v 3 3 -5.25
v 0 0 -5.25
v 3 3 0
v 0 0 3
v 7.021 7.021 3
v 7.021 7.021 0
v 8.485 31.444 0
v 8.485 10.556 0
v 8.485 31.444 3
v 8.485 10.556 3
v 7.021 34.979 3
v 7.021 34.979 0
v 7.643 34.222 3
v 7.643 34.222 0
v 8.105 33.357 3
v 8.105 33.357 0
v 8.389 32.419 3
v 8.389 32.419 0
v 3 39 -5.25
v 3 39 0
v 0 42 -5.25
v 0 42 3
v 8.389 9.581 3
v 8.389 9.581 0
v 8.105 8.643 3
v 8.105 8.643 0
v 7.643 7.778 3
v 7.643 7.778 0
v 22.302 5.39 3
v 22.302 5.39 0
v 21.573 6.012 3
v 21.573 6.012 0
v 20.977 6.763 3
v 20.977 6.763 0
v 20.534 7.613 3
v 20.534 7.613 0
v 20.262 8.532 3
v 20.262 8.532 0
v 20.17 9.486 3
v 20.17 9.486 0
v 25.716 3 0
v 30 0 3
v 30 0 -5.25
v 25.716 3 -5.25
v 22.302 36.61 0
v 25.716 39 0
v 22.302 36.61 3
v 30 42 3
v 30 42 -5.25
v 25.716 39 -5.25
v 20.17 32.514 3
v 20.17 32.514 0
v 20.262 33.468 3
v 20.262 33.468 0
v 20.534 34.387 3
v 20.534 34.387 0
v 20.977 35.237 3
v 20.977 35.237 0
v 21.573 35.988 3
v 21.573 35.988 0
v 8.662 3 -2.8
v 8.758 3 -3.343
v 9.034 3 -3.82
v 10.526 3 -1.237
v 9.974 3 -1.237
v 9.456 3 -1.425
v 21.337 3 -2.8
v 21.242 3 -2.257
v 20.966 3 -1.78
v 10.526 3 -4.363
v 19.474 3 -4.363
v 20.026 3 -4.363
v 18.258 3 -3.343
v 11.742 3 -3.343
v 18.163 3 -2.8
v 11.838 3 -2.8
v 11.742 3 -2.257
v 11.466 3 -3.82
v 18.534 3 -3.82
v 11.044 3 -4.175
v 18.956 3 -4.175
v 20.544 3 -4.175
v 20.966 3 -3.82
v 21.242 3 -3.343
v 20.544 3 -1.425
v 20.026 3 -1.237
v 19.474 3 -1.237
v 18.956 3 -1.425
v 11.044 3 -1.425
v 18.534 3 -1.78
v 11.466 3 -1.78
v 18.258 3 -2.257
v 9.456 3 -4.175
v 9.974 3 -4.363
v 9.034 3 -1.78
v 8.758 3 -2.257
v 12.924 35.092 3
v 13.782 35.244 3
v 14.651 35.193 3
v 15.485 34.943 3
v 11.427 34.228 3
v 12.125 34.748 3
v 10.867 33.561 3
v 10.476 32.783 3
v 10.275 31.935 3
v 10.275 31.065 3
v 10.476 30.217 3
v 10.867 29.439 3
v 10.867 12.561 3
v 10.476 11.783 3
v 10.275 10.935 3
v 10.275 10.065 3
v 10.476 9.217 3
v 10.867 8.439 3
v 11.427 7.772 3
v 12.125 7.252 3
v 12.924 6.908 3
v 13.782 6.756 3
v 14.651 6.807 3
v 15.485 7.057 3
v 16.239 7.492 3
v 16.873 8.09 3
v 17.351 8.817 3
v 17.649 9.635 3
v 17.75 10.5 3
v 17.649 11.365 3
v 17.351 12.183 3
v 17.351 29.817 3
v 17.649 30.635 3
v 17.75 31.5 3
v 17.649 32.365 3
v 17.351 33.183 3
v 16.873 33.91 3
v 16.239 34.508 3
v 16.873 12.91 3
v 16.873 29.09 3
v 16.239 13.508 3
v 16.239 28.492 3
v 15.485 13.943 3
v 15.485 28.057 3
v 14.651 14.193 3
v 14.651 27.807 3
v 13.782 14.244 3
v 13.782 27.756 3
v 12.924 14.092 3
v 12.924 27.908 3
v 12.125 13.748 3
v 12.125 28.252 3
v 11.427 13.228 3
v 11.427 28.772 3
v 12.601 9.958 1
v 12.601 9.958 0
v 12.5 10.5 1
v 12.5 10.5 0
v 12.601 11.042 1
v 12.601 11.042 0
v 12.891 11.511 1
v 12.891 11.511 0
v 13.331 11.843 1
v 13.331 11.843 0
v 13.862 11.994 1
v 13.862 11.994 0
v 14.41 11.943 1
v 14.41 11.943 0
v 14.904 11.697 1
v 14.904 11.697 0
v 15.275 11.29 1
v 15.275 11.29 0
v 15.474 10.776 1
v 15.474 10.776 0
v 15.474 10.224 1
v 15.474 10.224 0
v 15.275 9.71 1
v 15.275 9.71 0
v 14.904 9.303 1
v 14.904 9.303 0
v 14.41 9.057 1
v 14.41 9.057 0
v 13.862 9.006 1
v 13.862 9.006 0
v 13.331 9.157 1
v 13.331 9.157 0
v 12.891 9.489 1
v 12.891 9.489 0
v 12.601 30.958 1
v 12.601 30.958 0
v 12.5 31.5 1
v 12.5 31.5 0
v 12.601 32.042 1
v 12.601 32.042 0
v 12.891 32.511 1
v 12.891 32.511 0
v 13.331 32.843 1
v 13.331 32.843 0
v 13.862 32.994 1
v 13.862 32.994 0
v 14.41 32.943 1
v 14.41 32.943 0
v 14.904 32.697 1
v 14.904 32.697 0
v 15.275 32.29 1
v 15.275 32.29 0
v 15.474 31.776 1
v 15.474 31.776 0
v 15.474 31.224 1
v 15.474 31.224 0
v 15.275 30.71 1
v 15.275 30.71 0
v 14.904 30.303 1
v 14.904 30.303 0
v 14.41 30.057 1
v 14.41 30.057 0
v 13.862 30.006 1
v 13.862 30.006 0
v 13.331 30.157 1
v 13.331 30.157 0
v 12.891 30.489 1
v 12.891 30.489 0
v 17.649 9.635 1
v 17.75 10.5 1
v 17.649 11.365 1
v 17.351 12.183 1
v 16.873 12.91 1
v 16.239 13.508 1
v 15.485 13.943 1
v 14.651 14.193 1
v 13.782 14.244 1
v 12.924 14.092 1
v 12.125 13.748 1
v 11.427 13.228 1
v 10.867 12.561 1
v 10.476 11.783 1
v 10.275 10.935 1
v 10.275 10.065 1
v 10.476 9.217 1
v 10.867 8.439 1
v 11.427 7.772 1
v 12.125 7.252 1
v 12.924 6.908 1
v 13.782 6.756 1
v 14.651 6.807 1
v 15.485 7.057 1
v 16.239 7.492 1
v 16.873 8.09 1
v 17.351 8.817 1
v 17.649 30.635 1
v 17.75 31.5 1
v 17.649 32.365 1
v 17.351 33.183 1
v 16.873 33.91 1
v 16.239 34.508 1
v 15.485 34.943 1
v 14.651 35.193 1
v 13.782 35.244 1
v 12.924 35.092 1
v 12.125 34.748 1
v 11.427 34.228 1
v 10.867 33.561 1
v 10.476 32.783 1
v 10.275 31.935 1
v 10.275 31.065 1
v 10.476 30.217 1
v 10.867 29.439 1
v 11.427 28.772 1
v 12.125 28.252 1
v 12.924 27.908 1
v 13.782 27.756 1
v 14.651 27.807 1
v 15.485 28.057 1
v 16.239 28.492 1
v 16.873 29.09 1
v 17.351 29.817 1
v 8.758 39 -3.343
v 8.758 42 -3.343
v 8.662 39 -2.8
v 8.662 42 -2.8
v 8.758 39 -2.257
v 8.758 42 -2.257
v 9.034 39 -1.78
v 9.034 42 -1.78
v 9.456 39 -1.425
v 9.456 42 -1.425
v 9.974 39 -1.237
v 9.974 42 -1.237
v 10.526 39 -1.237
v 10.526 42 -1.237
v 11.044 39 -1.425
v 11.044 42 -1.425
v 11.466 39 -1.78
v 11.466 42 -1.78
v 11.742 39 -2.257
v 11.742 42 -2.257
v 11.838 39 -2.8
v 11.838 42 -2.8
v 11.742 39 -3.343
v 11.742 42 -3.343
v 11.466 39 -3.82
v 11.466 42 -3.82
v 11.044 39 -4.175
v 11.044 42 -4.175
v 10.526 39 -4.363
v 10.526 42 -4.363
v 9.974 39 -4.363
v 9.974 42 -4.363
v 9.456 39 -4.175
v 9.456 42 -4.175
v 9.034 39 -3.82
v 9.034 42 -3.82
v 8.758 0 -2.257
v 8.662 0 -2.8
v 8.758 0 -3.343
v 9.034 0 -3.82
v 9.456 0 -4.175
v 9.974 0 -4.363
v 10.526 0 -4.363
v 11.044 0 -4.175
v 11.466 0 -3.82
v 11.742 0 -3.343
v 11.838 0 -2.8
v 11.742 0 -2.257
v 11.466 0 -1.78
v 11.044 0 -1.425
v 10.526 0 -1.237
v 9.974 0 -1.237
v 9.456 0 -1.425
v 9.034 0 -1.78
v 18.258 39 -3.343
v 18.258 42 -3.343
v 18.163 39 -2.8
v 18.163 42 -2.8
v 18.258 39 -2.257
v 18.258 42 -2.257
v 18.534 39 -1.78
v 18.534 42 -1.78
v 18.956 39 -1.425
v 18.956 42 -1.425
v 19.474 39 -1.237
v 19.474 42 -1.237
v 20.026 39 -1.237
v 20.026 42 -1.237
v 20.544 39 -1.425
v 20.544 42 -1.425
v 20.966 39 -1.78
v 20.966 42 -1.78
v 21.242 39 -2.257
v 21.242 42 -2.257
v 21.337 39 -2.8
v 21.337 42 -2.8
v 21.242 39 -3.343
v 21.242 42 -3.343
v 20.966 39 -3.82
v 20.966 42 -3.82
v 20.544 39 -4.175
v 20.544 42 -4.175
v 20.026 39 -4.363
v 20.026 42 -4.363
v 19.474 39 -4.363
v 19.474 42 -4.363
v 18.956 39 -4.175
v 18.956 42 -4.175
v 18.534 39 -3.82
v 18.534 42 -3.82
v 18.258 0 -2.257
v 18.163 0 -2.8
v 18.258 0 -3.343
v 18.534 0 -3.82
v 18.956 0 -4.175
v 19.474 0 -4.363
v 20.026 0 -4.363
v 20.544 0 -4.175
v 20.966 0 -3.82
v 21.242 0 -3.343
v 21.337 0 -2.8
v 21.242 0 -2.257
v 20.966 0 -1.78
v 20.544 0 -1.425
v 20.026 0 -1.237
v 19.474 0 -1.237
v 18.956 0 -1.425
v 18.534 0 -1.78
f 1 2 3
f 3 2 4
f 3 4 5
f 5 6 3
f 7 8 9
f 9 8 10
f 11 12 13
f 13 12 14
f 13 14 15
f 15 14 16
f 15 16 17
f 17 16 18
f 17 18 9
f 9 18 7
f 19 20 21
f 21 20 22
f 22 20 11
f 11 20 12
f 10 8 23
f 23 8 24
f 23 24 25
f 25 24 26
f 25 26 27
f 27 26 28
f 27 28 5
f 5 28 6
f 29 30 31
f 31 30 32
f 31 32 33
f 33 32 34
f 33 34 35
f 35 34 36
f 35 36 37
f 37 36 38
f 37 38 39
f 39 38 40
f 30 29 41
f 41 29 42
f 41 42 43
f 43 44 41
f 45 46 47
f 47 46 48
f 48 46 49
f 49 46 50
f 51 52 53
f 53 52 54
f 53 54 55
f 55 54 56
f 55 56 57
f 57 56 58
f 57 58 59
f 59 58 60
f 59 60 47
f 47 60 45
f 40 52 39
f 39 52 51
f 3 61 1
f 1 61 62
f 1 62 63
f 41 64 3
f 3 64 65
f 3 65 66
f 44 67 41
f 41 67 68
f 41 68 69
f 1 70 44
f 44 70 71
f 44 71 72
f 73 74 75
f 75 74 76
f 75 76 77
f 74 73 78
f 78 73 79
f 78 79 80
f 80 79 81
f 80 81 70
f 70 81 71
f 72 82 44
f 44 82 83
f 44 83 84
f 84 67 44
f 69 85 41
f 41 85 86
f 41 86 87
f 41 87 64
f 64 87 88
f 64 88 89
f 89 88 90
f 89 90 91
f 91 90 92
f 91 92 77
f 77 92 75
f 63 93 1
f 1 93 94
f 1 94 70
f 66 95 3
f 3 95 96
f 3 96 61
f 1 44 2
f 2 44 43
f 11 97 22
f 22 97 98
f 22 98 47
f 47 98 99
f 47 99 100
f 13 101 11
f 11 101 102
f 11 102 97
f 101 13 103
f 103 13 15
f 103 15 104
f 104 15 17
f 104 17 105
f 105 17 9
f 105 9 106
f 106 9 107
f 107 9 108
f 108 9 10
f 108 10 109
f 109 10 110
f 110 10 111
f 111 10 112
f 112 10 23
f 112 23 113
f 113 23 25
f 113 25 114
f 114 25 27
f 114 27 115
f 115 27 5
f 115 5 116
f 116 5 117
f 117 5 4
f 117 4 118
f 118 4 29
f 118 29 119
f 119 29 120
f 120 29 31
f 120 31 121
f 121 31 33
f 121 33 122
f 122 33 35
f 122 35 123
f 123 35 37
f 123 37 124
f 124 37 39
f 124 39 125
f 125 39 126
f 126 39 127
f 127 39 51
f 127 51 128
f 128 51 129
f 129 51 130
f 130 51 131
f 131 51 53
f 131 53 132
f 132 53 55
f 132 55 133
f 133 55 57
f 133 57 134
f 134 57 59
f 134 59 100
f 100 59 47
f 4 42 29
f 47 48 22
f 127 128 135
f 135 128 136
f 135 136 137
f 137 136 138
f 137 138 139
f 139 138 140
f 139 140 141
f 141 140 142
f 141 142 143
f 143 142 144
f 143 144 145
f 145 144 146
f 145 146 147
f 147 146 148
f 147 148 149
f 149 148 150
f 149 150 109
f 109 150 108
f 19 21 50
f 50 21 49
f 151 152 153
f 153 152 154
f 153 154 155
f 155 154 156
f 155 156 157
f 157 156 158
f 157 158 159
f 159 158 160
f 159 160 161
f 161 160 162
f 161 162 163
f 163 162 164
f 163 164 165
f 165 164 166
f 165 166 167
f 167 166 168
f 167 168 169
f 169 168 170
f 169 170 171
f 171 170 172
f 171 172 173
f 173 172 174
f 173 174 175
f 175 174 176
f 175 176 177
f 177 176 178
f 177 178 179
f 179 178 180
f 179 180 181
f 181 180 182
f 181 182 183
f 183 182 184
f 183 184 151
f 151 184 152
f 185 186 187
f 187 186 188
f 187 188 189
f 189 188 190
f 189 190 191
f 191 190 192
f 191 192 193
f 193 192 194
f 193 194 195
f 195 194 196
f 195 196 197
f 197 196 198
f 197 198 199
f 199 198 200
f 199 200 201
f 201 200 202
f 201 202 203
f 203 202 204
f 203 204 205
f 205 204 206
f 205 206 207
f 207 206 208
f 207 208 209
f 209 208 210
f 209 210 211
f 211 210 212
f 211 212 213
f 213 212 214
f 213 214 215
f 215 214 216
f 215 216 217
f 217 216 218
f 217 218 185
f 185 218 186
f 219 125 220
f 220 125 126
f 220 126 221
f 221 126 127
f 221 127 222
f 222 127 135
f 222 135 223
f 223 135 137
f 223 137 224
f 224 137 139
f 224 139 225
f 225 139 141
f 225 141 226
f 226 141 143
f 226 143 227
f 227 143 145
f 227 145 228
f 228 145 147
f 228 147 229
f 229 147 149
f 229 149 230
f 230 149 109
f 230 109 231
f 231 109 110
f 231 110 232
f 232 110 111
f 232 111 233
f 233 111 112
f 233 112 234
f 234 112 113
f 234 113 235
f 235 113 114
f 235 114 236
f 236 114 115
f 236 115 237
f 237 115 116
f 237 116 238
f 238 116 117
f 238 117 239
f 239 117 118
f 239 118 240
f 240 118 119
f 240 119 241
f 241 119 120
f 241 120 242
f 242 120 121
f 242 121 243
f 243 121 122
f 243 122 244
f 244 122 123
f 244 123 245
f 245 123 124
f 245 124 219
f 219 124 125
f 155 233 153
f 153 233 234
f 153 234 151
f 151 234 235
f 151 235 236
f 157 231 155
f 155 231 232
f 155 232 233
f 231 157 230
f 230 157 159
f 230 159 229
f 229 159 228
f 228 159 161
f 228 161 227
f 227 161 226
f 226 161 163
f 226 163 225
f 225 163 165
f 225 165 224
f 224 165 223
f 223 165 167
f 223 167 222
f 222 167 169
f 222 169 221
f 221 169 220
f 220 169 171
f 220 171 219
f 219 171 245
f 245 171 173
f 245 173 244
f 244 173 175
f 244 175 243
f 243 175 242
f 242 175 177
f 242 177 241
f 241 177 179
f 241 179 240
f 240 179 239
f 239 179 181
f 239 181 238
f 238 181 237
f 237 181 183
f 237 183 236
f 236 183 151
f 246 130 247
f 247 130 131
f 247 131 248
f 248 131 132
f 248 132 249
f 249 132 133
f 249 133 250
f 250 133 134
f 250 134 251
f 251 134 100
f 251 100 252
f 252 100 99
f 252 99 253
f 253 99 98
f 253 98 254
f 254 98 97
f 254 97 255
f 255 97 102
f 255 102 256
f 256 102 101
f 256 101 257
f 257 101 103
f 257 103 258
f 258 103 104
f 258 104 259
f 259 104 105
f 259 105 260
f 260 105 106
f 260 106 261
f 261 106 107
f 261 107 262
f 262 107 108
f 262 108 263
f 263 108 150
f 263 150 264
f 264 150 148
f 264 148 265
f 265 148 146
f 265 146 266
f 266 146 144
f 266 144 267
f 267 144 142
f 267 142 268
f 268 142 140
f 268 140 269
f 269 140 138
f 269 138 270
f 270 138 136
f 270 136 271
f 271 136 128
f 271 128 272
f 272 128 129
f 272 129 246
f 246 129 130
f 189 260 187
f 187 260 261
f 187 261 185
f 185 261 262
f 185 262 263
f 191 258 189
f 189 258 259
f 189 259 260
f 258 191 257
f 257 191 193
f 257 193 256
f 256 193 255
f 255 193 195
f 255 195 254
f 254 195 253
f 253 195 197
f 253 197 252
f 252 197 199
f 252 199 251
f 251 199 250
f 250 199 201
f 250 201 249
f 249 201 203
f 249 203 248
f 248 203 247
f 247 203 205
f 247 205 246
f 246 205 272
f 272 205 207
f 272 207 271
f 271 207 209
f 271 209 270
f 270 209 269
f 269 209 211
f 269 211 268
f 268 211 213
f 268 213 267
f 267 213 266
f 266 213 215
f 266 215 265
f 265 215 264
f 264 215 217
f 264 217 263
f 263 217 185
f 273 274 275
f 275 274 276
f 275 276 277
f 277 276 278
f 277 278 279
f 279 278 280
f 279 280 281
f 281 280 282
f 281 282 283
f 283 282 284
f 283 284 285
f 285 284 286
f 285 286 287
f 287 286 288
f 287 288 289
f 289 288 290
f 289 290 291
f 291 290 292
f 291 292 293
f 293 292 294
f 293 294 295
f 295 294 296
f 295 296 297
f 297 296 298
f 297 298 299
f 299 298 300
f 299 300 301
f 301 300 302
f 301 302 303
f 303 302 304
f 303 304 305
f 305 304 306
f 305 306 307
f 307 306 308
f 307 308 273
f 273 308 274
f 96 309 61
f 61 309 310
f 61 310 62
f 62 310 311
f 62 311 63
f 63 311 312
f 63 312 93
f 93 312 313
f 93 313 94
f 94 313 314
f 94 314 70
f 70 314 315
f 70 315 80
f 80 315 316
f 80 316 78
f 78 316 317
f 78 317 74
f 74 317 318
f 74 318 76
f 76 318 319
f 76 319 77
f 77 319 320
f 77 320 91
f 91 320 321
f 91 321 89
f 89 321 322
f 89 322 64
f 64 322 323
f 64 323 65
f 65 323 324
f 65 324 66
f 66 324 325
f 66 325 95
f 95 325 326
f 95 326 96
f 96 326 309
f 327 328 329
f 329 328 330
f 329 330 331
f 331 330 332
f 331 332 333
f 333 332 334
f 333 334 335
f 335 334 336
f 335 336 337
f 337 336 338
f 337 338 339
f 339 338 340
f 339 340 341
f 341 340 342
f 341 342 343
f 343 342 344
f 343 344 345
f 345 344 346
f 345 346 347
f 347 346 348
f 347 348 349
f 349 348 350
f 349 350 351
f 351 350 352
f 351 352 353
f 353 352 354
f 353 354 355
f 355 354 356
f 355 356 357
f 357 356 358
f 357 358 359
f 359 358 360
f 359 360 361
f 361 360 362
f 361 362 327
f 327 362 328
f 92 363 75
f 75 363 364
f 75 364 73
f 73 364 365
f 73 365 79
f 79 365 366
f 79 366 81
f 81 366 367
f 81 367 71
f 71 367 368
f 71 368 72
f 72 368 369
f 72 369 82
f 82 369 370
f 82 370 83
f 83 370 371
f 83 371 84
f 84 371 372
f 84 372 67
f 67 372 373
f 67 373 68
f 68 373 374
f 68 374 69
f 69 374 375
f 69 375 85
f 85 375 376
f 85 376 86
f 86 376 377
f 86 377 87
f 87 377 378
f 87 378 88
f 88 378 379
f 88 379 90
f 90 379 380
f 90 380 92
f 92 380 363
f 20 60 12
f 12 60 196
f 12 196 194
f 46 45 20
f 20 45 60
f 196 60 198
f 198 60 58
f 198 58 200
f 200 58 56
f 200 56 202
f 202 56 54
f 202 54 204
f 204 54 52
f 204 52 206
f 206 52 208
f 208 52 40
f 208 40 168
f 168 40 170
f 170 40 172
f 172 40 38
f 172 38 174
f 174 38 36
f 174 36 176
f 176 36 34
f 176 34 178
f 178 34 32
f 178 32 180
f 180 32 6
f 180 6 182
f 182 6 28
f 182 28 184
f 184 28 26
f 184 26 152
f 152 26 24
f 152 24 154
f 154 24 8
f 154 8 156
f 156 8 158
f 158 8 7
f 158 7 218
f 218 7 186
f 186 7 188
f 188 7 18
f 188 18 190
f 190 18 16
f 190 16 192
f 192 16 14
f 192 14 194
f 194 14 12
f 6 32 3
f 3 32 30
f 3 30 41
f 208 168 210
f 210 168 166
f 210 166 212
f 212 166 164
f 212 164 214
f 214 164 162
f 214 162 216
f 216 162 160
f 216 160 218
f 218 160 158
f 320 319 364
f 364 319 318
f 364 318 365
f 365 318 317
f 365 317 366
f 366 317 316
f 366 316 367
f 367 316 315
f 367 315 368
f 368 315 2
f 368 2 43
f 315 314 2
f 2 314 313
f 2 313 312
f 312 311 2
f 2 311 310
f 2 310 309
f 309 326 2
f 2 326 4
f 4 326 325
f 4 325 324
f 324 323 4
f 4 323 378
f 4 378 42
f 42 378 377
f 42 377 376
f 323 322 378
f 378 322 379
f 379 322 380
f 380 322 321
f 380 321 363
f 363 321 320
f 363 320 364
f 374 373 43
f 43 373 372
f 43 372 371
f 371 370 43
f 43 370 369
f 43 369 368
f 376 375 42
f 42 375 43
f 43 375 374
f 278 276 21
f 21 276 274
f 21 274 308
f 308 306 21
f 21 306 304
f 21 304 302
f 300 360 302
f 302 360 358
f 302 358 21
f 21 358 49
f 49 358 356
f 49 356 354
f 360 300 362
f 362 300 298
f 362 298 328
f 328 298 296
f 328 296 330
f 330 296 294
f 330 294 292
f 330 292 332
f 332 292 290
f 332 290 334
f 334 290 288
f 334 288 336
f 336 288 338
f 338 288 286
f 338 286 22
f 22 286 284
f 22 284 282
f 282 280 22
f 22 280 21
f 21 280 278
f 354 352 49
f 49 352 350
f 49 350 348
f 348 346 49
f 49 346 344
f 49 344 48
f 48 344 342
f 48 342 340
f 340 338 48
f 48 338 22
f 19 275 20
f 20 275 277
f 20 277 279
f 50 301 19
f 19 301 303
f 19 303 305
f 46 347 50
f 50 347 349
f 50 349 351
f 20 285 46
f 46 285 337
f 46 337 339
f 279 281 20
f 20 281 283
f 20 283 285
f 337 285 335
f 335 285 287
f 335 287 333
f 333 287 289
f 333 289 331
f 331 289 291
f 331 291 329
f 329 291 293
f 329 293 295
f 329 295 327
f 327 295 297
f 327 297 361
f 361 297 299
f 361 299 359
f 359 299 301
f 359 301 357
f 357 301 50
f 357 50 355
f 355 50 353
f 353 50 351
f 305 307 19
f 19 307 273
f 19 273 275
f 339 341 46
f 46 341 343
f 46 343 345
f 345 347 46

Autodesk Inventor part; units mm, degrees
ref_plane "YZ Plane" through (0, 0, 0) normal (1, 0, 0) x (0, 1, 0)
ref_plane "XZ Plane" through (0, 0, 0) normal (0, 1, 0) x (-1, 0, 0)
ref_plane "XY Plane" through (0, 0, 0) normal (0, 0, 1) x (1, 0, 0)
sketch "Sketch1" plane through (0, 0, 0) normal (1, 0, 0) x (0, 1, 0)
  line L0 (0, 0) -> (42, 0)
  line L1 (42, 0) -> (42, 3)
  line L2 (42, 3) -> (0, 3)
  line L3 (0, 3) -> (0, 0)
  line L4 (42, 3) -> (39, 3)
  line L5 (39, 3) -> (39, -5.25)
  line L6 (39, -5.25) -> (42, -5.25)
  line L7 (42, -5.25) -> (42, 3)
  line L8 (21, 3) -> (21, 5.7784)
  line L9 (42, 0) -> (0, 0)
  line L10 (0, 0) -> (0, 3)
  line L11 (0, 3) -> (42, 3)
  line L12 (0, 3) -> (3, 3)
  line L13 (3, 3) -> (3, -5.25)
  line L14 (3, -5.25) -> (0, -5.25)
  line L15 (0, -5.25) -> (0, 3)
  point P0 (3, 0)
  point P1 (39, 0)
  dimension "d0" = 42
  dimension "d1" = 3
  dimension "d2" = 3
  dimension "d3" = 8.25
extrude "Extrusion1" add sketch "Sketch1" along normal blind 30
sketch "Sketch2" plane through (0, 0, -5.25) normal (0, -1, 0) x (1, 0, 0)
  circle A0 centre (19.75, 2.45) radius 1.5875
  line L0 (30, 8.25) -> (30, 0) projected
  line L1 (0, 8.25) -> (30, 8.25) projected
  line L2 (0, 0) -> (30, 0) projected
  circle A1 centre (10.25, 2.45) radius 1.5875
  line L3 (0, 8.25) -> (0, 0) projected
  point P0 (0, 5.25)
  dimension "d7" = 5.8
  dimension "d8" = 9.5
  dimension "d37" = 10.25
extrude "Extrusion2" cut sketch "Sketch2" against normal blind 60 contours A0 | A1
sketch "Sketch3" plane through (0, 0, 3) normal (0, 0, 1) x (1, 0, 0)
  circle A0 centre (14, 31.5) radius 3.75
  circle A1 centre (14, 10.5) radius 3.75
  line L0 (30, 42) -> (30, 0) projected
  line L1 (0, 42) -> (0, 0) projected
  line L2 (0, 42) -> (30, 42) projected
  line L3 (0, 0) -> (30, 0) projected
  circle A2 centre (14, 31.5) radius 1.5
  circle A3 centre (14, 10.5) radius 1.5
  dimension "d11" = 7.5
  dimension "d12" = 7.5
  dimension "d13" = 16
  dimension "d14" = 14
  dimension "d15" = 16
  dimension "d16" = 10.5
  dimension "d17" = 10.5
  dimension "d20" = 3
  dimension "d21" = 3
extrude "Extrusion3" cut sketch "Sketch3" against normal blind 2 contours A0 | A1 | A2 | A3
extrude "Extrusion4" cut sketch "Sketch3" against normal blind 10 contours A2 | A3
sketch "Sketch4" plane through (0, 0, 3) normal (0, 0, 1) x (1, 0, 0)
  line L0 (0, 0) -> (7.0208, 7.0208)
  line L1 (0, 0) -> (9.9289, 0) construction
  line L2 (8.4853, 10.5563) -> (8.4853, 31.4437)
  line L3 (0, 42) -> (0, 0) projected
  line L4 (0, 42) -> (7.0208, 34.9792)
  line L5 (0, 42) -> (9.9289, 42) construction
  line L6 (0, 0) -> (30, 0) projected
  line L7 (30, 0) -> (22.3023, 5.39)
  line L8 (30, 0) -> (39.3972, 0) construction
  line L9 (30, 42) -> (22.3023, 36.61)
  line L10 (30, 42) -> (39.3972, 42) construction
  line L11 (20.1702, 32.5142) -> (20.1702, 9.4858)
  line L12 (8.4853, 33.5147) -> (8.4853, 32.6445)
  arc A0 (20.1702, 9.4858) -> (22.3023, 5.39) centre (25.1702, 9.4858) ccw
  arc A1 (22.3023, 36.61) -> (20.1702, 32.5142) centre (25.1702, 32.5142) ccw
  arc A2 (8.4853, 31.4437) -> (7.0208, 34.9792) centre (3.4853, 31.4437) ccw
  arc A3 (7.0208, 7.0208) -> (8.4853, 10.5563) centre (3.4853, 10.5563) ccw
  line L13 (30, 42) -> (30, 0) projected
  line L14 (30, 0) -> (30, 42)
  point P0 (8.4853, 8.4853)
  point P1 (20.1702, 6.8829)
  point P2 (20.1702, 35.1171)
  dimension "d24" = 12
  dimension "d25" = 45
  dimension "d26" = 12
  dimension "d27" = 45
  dimension "d28" = 12
  dimension "d29" = 145
  dimension "d30" = 12
  dimension "d31" = 145
  dimension "d32" = 5
extrude "Extrusion5" cut sketch "Sketch4" against normal blind 10
sketch "Sketch5" plane through (0, 42, 3) normal (0, 1, 0) x (1, 0, 0)
  line L0 (0, 0) -> (7.0208, 0) projected
  line L1 (0, 8.25) -> (30, 8.25) projected
  line L2 (4, 0) -> (26, 0)
  line L3 (26, 0) -> (26, 8.25)
  line L4 (26, 8.25) -> (4, 8.25)
  line L5 (4, 8.25) -> (4, 0)
  line L6 (30, 8.25) -> (30, 0) projected
  point P0 (0, 3)
  dimension "d38" = 22
  dimension "d39" = 4
properties part number "horni_kloub_extenze_drzak"
